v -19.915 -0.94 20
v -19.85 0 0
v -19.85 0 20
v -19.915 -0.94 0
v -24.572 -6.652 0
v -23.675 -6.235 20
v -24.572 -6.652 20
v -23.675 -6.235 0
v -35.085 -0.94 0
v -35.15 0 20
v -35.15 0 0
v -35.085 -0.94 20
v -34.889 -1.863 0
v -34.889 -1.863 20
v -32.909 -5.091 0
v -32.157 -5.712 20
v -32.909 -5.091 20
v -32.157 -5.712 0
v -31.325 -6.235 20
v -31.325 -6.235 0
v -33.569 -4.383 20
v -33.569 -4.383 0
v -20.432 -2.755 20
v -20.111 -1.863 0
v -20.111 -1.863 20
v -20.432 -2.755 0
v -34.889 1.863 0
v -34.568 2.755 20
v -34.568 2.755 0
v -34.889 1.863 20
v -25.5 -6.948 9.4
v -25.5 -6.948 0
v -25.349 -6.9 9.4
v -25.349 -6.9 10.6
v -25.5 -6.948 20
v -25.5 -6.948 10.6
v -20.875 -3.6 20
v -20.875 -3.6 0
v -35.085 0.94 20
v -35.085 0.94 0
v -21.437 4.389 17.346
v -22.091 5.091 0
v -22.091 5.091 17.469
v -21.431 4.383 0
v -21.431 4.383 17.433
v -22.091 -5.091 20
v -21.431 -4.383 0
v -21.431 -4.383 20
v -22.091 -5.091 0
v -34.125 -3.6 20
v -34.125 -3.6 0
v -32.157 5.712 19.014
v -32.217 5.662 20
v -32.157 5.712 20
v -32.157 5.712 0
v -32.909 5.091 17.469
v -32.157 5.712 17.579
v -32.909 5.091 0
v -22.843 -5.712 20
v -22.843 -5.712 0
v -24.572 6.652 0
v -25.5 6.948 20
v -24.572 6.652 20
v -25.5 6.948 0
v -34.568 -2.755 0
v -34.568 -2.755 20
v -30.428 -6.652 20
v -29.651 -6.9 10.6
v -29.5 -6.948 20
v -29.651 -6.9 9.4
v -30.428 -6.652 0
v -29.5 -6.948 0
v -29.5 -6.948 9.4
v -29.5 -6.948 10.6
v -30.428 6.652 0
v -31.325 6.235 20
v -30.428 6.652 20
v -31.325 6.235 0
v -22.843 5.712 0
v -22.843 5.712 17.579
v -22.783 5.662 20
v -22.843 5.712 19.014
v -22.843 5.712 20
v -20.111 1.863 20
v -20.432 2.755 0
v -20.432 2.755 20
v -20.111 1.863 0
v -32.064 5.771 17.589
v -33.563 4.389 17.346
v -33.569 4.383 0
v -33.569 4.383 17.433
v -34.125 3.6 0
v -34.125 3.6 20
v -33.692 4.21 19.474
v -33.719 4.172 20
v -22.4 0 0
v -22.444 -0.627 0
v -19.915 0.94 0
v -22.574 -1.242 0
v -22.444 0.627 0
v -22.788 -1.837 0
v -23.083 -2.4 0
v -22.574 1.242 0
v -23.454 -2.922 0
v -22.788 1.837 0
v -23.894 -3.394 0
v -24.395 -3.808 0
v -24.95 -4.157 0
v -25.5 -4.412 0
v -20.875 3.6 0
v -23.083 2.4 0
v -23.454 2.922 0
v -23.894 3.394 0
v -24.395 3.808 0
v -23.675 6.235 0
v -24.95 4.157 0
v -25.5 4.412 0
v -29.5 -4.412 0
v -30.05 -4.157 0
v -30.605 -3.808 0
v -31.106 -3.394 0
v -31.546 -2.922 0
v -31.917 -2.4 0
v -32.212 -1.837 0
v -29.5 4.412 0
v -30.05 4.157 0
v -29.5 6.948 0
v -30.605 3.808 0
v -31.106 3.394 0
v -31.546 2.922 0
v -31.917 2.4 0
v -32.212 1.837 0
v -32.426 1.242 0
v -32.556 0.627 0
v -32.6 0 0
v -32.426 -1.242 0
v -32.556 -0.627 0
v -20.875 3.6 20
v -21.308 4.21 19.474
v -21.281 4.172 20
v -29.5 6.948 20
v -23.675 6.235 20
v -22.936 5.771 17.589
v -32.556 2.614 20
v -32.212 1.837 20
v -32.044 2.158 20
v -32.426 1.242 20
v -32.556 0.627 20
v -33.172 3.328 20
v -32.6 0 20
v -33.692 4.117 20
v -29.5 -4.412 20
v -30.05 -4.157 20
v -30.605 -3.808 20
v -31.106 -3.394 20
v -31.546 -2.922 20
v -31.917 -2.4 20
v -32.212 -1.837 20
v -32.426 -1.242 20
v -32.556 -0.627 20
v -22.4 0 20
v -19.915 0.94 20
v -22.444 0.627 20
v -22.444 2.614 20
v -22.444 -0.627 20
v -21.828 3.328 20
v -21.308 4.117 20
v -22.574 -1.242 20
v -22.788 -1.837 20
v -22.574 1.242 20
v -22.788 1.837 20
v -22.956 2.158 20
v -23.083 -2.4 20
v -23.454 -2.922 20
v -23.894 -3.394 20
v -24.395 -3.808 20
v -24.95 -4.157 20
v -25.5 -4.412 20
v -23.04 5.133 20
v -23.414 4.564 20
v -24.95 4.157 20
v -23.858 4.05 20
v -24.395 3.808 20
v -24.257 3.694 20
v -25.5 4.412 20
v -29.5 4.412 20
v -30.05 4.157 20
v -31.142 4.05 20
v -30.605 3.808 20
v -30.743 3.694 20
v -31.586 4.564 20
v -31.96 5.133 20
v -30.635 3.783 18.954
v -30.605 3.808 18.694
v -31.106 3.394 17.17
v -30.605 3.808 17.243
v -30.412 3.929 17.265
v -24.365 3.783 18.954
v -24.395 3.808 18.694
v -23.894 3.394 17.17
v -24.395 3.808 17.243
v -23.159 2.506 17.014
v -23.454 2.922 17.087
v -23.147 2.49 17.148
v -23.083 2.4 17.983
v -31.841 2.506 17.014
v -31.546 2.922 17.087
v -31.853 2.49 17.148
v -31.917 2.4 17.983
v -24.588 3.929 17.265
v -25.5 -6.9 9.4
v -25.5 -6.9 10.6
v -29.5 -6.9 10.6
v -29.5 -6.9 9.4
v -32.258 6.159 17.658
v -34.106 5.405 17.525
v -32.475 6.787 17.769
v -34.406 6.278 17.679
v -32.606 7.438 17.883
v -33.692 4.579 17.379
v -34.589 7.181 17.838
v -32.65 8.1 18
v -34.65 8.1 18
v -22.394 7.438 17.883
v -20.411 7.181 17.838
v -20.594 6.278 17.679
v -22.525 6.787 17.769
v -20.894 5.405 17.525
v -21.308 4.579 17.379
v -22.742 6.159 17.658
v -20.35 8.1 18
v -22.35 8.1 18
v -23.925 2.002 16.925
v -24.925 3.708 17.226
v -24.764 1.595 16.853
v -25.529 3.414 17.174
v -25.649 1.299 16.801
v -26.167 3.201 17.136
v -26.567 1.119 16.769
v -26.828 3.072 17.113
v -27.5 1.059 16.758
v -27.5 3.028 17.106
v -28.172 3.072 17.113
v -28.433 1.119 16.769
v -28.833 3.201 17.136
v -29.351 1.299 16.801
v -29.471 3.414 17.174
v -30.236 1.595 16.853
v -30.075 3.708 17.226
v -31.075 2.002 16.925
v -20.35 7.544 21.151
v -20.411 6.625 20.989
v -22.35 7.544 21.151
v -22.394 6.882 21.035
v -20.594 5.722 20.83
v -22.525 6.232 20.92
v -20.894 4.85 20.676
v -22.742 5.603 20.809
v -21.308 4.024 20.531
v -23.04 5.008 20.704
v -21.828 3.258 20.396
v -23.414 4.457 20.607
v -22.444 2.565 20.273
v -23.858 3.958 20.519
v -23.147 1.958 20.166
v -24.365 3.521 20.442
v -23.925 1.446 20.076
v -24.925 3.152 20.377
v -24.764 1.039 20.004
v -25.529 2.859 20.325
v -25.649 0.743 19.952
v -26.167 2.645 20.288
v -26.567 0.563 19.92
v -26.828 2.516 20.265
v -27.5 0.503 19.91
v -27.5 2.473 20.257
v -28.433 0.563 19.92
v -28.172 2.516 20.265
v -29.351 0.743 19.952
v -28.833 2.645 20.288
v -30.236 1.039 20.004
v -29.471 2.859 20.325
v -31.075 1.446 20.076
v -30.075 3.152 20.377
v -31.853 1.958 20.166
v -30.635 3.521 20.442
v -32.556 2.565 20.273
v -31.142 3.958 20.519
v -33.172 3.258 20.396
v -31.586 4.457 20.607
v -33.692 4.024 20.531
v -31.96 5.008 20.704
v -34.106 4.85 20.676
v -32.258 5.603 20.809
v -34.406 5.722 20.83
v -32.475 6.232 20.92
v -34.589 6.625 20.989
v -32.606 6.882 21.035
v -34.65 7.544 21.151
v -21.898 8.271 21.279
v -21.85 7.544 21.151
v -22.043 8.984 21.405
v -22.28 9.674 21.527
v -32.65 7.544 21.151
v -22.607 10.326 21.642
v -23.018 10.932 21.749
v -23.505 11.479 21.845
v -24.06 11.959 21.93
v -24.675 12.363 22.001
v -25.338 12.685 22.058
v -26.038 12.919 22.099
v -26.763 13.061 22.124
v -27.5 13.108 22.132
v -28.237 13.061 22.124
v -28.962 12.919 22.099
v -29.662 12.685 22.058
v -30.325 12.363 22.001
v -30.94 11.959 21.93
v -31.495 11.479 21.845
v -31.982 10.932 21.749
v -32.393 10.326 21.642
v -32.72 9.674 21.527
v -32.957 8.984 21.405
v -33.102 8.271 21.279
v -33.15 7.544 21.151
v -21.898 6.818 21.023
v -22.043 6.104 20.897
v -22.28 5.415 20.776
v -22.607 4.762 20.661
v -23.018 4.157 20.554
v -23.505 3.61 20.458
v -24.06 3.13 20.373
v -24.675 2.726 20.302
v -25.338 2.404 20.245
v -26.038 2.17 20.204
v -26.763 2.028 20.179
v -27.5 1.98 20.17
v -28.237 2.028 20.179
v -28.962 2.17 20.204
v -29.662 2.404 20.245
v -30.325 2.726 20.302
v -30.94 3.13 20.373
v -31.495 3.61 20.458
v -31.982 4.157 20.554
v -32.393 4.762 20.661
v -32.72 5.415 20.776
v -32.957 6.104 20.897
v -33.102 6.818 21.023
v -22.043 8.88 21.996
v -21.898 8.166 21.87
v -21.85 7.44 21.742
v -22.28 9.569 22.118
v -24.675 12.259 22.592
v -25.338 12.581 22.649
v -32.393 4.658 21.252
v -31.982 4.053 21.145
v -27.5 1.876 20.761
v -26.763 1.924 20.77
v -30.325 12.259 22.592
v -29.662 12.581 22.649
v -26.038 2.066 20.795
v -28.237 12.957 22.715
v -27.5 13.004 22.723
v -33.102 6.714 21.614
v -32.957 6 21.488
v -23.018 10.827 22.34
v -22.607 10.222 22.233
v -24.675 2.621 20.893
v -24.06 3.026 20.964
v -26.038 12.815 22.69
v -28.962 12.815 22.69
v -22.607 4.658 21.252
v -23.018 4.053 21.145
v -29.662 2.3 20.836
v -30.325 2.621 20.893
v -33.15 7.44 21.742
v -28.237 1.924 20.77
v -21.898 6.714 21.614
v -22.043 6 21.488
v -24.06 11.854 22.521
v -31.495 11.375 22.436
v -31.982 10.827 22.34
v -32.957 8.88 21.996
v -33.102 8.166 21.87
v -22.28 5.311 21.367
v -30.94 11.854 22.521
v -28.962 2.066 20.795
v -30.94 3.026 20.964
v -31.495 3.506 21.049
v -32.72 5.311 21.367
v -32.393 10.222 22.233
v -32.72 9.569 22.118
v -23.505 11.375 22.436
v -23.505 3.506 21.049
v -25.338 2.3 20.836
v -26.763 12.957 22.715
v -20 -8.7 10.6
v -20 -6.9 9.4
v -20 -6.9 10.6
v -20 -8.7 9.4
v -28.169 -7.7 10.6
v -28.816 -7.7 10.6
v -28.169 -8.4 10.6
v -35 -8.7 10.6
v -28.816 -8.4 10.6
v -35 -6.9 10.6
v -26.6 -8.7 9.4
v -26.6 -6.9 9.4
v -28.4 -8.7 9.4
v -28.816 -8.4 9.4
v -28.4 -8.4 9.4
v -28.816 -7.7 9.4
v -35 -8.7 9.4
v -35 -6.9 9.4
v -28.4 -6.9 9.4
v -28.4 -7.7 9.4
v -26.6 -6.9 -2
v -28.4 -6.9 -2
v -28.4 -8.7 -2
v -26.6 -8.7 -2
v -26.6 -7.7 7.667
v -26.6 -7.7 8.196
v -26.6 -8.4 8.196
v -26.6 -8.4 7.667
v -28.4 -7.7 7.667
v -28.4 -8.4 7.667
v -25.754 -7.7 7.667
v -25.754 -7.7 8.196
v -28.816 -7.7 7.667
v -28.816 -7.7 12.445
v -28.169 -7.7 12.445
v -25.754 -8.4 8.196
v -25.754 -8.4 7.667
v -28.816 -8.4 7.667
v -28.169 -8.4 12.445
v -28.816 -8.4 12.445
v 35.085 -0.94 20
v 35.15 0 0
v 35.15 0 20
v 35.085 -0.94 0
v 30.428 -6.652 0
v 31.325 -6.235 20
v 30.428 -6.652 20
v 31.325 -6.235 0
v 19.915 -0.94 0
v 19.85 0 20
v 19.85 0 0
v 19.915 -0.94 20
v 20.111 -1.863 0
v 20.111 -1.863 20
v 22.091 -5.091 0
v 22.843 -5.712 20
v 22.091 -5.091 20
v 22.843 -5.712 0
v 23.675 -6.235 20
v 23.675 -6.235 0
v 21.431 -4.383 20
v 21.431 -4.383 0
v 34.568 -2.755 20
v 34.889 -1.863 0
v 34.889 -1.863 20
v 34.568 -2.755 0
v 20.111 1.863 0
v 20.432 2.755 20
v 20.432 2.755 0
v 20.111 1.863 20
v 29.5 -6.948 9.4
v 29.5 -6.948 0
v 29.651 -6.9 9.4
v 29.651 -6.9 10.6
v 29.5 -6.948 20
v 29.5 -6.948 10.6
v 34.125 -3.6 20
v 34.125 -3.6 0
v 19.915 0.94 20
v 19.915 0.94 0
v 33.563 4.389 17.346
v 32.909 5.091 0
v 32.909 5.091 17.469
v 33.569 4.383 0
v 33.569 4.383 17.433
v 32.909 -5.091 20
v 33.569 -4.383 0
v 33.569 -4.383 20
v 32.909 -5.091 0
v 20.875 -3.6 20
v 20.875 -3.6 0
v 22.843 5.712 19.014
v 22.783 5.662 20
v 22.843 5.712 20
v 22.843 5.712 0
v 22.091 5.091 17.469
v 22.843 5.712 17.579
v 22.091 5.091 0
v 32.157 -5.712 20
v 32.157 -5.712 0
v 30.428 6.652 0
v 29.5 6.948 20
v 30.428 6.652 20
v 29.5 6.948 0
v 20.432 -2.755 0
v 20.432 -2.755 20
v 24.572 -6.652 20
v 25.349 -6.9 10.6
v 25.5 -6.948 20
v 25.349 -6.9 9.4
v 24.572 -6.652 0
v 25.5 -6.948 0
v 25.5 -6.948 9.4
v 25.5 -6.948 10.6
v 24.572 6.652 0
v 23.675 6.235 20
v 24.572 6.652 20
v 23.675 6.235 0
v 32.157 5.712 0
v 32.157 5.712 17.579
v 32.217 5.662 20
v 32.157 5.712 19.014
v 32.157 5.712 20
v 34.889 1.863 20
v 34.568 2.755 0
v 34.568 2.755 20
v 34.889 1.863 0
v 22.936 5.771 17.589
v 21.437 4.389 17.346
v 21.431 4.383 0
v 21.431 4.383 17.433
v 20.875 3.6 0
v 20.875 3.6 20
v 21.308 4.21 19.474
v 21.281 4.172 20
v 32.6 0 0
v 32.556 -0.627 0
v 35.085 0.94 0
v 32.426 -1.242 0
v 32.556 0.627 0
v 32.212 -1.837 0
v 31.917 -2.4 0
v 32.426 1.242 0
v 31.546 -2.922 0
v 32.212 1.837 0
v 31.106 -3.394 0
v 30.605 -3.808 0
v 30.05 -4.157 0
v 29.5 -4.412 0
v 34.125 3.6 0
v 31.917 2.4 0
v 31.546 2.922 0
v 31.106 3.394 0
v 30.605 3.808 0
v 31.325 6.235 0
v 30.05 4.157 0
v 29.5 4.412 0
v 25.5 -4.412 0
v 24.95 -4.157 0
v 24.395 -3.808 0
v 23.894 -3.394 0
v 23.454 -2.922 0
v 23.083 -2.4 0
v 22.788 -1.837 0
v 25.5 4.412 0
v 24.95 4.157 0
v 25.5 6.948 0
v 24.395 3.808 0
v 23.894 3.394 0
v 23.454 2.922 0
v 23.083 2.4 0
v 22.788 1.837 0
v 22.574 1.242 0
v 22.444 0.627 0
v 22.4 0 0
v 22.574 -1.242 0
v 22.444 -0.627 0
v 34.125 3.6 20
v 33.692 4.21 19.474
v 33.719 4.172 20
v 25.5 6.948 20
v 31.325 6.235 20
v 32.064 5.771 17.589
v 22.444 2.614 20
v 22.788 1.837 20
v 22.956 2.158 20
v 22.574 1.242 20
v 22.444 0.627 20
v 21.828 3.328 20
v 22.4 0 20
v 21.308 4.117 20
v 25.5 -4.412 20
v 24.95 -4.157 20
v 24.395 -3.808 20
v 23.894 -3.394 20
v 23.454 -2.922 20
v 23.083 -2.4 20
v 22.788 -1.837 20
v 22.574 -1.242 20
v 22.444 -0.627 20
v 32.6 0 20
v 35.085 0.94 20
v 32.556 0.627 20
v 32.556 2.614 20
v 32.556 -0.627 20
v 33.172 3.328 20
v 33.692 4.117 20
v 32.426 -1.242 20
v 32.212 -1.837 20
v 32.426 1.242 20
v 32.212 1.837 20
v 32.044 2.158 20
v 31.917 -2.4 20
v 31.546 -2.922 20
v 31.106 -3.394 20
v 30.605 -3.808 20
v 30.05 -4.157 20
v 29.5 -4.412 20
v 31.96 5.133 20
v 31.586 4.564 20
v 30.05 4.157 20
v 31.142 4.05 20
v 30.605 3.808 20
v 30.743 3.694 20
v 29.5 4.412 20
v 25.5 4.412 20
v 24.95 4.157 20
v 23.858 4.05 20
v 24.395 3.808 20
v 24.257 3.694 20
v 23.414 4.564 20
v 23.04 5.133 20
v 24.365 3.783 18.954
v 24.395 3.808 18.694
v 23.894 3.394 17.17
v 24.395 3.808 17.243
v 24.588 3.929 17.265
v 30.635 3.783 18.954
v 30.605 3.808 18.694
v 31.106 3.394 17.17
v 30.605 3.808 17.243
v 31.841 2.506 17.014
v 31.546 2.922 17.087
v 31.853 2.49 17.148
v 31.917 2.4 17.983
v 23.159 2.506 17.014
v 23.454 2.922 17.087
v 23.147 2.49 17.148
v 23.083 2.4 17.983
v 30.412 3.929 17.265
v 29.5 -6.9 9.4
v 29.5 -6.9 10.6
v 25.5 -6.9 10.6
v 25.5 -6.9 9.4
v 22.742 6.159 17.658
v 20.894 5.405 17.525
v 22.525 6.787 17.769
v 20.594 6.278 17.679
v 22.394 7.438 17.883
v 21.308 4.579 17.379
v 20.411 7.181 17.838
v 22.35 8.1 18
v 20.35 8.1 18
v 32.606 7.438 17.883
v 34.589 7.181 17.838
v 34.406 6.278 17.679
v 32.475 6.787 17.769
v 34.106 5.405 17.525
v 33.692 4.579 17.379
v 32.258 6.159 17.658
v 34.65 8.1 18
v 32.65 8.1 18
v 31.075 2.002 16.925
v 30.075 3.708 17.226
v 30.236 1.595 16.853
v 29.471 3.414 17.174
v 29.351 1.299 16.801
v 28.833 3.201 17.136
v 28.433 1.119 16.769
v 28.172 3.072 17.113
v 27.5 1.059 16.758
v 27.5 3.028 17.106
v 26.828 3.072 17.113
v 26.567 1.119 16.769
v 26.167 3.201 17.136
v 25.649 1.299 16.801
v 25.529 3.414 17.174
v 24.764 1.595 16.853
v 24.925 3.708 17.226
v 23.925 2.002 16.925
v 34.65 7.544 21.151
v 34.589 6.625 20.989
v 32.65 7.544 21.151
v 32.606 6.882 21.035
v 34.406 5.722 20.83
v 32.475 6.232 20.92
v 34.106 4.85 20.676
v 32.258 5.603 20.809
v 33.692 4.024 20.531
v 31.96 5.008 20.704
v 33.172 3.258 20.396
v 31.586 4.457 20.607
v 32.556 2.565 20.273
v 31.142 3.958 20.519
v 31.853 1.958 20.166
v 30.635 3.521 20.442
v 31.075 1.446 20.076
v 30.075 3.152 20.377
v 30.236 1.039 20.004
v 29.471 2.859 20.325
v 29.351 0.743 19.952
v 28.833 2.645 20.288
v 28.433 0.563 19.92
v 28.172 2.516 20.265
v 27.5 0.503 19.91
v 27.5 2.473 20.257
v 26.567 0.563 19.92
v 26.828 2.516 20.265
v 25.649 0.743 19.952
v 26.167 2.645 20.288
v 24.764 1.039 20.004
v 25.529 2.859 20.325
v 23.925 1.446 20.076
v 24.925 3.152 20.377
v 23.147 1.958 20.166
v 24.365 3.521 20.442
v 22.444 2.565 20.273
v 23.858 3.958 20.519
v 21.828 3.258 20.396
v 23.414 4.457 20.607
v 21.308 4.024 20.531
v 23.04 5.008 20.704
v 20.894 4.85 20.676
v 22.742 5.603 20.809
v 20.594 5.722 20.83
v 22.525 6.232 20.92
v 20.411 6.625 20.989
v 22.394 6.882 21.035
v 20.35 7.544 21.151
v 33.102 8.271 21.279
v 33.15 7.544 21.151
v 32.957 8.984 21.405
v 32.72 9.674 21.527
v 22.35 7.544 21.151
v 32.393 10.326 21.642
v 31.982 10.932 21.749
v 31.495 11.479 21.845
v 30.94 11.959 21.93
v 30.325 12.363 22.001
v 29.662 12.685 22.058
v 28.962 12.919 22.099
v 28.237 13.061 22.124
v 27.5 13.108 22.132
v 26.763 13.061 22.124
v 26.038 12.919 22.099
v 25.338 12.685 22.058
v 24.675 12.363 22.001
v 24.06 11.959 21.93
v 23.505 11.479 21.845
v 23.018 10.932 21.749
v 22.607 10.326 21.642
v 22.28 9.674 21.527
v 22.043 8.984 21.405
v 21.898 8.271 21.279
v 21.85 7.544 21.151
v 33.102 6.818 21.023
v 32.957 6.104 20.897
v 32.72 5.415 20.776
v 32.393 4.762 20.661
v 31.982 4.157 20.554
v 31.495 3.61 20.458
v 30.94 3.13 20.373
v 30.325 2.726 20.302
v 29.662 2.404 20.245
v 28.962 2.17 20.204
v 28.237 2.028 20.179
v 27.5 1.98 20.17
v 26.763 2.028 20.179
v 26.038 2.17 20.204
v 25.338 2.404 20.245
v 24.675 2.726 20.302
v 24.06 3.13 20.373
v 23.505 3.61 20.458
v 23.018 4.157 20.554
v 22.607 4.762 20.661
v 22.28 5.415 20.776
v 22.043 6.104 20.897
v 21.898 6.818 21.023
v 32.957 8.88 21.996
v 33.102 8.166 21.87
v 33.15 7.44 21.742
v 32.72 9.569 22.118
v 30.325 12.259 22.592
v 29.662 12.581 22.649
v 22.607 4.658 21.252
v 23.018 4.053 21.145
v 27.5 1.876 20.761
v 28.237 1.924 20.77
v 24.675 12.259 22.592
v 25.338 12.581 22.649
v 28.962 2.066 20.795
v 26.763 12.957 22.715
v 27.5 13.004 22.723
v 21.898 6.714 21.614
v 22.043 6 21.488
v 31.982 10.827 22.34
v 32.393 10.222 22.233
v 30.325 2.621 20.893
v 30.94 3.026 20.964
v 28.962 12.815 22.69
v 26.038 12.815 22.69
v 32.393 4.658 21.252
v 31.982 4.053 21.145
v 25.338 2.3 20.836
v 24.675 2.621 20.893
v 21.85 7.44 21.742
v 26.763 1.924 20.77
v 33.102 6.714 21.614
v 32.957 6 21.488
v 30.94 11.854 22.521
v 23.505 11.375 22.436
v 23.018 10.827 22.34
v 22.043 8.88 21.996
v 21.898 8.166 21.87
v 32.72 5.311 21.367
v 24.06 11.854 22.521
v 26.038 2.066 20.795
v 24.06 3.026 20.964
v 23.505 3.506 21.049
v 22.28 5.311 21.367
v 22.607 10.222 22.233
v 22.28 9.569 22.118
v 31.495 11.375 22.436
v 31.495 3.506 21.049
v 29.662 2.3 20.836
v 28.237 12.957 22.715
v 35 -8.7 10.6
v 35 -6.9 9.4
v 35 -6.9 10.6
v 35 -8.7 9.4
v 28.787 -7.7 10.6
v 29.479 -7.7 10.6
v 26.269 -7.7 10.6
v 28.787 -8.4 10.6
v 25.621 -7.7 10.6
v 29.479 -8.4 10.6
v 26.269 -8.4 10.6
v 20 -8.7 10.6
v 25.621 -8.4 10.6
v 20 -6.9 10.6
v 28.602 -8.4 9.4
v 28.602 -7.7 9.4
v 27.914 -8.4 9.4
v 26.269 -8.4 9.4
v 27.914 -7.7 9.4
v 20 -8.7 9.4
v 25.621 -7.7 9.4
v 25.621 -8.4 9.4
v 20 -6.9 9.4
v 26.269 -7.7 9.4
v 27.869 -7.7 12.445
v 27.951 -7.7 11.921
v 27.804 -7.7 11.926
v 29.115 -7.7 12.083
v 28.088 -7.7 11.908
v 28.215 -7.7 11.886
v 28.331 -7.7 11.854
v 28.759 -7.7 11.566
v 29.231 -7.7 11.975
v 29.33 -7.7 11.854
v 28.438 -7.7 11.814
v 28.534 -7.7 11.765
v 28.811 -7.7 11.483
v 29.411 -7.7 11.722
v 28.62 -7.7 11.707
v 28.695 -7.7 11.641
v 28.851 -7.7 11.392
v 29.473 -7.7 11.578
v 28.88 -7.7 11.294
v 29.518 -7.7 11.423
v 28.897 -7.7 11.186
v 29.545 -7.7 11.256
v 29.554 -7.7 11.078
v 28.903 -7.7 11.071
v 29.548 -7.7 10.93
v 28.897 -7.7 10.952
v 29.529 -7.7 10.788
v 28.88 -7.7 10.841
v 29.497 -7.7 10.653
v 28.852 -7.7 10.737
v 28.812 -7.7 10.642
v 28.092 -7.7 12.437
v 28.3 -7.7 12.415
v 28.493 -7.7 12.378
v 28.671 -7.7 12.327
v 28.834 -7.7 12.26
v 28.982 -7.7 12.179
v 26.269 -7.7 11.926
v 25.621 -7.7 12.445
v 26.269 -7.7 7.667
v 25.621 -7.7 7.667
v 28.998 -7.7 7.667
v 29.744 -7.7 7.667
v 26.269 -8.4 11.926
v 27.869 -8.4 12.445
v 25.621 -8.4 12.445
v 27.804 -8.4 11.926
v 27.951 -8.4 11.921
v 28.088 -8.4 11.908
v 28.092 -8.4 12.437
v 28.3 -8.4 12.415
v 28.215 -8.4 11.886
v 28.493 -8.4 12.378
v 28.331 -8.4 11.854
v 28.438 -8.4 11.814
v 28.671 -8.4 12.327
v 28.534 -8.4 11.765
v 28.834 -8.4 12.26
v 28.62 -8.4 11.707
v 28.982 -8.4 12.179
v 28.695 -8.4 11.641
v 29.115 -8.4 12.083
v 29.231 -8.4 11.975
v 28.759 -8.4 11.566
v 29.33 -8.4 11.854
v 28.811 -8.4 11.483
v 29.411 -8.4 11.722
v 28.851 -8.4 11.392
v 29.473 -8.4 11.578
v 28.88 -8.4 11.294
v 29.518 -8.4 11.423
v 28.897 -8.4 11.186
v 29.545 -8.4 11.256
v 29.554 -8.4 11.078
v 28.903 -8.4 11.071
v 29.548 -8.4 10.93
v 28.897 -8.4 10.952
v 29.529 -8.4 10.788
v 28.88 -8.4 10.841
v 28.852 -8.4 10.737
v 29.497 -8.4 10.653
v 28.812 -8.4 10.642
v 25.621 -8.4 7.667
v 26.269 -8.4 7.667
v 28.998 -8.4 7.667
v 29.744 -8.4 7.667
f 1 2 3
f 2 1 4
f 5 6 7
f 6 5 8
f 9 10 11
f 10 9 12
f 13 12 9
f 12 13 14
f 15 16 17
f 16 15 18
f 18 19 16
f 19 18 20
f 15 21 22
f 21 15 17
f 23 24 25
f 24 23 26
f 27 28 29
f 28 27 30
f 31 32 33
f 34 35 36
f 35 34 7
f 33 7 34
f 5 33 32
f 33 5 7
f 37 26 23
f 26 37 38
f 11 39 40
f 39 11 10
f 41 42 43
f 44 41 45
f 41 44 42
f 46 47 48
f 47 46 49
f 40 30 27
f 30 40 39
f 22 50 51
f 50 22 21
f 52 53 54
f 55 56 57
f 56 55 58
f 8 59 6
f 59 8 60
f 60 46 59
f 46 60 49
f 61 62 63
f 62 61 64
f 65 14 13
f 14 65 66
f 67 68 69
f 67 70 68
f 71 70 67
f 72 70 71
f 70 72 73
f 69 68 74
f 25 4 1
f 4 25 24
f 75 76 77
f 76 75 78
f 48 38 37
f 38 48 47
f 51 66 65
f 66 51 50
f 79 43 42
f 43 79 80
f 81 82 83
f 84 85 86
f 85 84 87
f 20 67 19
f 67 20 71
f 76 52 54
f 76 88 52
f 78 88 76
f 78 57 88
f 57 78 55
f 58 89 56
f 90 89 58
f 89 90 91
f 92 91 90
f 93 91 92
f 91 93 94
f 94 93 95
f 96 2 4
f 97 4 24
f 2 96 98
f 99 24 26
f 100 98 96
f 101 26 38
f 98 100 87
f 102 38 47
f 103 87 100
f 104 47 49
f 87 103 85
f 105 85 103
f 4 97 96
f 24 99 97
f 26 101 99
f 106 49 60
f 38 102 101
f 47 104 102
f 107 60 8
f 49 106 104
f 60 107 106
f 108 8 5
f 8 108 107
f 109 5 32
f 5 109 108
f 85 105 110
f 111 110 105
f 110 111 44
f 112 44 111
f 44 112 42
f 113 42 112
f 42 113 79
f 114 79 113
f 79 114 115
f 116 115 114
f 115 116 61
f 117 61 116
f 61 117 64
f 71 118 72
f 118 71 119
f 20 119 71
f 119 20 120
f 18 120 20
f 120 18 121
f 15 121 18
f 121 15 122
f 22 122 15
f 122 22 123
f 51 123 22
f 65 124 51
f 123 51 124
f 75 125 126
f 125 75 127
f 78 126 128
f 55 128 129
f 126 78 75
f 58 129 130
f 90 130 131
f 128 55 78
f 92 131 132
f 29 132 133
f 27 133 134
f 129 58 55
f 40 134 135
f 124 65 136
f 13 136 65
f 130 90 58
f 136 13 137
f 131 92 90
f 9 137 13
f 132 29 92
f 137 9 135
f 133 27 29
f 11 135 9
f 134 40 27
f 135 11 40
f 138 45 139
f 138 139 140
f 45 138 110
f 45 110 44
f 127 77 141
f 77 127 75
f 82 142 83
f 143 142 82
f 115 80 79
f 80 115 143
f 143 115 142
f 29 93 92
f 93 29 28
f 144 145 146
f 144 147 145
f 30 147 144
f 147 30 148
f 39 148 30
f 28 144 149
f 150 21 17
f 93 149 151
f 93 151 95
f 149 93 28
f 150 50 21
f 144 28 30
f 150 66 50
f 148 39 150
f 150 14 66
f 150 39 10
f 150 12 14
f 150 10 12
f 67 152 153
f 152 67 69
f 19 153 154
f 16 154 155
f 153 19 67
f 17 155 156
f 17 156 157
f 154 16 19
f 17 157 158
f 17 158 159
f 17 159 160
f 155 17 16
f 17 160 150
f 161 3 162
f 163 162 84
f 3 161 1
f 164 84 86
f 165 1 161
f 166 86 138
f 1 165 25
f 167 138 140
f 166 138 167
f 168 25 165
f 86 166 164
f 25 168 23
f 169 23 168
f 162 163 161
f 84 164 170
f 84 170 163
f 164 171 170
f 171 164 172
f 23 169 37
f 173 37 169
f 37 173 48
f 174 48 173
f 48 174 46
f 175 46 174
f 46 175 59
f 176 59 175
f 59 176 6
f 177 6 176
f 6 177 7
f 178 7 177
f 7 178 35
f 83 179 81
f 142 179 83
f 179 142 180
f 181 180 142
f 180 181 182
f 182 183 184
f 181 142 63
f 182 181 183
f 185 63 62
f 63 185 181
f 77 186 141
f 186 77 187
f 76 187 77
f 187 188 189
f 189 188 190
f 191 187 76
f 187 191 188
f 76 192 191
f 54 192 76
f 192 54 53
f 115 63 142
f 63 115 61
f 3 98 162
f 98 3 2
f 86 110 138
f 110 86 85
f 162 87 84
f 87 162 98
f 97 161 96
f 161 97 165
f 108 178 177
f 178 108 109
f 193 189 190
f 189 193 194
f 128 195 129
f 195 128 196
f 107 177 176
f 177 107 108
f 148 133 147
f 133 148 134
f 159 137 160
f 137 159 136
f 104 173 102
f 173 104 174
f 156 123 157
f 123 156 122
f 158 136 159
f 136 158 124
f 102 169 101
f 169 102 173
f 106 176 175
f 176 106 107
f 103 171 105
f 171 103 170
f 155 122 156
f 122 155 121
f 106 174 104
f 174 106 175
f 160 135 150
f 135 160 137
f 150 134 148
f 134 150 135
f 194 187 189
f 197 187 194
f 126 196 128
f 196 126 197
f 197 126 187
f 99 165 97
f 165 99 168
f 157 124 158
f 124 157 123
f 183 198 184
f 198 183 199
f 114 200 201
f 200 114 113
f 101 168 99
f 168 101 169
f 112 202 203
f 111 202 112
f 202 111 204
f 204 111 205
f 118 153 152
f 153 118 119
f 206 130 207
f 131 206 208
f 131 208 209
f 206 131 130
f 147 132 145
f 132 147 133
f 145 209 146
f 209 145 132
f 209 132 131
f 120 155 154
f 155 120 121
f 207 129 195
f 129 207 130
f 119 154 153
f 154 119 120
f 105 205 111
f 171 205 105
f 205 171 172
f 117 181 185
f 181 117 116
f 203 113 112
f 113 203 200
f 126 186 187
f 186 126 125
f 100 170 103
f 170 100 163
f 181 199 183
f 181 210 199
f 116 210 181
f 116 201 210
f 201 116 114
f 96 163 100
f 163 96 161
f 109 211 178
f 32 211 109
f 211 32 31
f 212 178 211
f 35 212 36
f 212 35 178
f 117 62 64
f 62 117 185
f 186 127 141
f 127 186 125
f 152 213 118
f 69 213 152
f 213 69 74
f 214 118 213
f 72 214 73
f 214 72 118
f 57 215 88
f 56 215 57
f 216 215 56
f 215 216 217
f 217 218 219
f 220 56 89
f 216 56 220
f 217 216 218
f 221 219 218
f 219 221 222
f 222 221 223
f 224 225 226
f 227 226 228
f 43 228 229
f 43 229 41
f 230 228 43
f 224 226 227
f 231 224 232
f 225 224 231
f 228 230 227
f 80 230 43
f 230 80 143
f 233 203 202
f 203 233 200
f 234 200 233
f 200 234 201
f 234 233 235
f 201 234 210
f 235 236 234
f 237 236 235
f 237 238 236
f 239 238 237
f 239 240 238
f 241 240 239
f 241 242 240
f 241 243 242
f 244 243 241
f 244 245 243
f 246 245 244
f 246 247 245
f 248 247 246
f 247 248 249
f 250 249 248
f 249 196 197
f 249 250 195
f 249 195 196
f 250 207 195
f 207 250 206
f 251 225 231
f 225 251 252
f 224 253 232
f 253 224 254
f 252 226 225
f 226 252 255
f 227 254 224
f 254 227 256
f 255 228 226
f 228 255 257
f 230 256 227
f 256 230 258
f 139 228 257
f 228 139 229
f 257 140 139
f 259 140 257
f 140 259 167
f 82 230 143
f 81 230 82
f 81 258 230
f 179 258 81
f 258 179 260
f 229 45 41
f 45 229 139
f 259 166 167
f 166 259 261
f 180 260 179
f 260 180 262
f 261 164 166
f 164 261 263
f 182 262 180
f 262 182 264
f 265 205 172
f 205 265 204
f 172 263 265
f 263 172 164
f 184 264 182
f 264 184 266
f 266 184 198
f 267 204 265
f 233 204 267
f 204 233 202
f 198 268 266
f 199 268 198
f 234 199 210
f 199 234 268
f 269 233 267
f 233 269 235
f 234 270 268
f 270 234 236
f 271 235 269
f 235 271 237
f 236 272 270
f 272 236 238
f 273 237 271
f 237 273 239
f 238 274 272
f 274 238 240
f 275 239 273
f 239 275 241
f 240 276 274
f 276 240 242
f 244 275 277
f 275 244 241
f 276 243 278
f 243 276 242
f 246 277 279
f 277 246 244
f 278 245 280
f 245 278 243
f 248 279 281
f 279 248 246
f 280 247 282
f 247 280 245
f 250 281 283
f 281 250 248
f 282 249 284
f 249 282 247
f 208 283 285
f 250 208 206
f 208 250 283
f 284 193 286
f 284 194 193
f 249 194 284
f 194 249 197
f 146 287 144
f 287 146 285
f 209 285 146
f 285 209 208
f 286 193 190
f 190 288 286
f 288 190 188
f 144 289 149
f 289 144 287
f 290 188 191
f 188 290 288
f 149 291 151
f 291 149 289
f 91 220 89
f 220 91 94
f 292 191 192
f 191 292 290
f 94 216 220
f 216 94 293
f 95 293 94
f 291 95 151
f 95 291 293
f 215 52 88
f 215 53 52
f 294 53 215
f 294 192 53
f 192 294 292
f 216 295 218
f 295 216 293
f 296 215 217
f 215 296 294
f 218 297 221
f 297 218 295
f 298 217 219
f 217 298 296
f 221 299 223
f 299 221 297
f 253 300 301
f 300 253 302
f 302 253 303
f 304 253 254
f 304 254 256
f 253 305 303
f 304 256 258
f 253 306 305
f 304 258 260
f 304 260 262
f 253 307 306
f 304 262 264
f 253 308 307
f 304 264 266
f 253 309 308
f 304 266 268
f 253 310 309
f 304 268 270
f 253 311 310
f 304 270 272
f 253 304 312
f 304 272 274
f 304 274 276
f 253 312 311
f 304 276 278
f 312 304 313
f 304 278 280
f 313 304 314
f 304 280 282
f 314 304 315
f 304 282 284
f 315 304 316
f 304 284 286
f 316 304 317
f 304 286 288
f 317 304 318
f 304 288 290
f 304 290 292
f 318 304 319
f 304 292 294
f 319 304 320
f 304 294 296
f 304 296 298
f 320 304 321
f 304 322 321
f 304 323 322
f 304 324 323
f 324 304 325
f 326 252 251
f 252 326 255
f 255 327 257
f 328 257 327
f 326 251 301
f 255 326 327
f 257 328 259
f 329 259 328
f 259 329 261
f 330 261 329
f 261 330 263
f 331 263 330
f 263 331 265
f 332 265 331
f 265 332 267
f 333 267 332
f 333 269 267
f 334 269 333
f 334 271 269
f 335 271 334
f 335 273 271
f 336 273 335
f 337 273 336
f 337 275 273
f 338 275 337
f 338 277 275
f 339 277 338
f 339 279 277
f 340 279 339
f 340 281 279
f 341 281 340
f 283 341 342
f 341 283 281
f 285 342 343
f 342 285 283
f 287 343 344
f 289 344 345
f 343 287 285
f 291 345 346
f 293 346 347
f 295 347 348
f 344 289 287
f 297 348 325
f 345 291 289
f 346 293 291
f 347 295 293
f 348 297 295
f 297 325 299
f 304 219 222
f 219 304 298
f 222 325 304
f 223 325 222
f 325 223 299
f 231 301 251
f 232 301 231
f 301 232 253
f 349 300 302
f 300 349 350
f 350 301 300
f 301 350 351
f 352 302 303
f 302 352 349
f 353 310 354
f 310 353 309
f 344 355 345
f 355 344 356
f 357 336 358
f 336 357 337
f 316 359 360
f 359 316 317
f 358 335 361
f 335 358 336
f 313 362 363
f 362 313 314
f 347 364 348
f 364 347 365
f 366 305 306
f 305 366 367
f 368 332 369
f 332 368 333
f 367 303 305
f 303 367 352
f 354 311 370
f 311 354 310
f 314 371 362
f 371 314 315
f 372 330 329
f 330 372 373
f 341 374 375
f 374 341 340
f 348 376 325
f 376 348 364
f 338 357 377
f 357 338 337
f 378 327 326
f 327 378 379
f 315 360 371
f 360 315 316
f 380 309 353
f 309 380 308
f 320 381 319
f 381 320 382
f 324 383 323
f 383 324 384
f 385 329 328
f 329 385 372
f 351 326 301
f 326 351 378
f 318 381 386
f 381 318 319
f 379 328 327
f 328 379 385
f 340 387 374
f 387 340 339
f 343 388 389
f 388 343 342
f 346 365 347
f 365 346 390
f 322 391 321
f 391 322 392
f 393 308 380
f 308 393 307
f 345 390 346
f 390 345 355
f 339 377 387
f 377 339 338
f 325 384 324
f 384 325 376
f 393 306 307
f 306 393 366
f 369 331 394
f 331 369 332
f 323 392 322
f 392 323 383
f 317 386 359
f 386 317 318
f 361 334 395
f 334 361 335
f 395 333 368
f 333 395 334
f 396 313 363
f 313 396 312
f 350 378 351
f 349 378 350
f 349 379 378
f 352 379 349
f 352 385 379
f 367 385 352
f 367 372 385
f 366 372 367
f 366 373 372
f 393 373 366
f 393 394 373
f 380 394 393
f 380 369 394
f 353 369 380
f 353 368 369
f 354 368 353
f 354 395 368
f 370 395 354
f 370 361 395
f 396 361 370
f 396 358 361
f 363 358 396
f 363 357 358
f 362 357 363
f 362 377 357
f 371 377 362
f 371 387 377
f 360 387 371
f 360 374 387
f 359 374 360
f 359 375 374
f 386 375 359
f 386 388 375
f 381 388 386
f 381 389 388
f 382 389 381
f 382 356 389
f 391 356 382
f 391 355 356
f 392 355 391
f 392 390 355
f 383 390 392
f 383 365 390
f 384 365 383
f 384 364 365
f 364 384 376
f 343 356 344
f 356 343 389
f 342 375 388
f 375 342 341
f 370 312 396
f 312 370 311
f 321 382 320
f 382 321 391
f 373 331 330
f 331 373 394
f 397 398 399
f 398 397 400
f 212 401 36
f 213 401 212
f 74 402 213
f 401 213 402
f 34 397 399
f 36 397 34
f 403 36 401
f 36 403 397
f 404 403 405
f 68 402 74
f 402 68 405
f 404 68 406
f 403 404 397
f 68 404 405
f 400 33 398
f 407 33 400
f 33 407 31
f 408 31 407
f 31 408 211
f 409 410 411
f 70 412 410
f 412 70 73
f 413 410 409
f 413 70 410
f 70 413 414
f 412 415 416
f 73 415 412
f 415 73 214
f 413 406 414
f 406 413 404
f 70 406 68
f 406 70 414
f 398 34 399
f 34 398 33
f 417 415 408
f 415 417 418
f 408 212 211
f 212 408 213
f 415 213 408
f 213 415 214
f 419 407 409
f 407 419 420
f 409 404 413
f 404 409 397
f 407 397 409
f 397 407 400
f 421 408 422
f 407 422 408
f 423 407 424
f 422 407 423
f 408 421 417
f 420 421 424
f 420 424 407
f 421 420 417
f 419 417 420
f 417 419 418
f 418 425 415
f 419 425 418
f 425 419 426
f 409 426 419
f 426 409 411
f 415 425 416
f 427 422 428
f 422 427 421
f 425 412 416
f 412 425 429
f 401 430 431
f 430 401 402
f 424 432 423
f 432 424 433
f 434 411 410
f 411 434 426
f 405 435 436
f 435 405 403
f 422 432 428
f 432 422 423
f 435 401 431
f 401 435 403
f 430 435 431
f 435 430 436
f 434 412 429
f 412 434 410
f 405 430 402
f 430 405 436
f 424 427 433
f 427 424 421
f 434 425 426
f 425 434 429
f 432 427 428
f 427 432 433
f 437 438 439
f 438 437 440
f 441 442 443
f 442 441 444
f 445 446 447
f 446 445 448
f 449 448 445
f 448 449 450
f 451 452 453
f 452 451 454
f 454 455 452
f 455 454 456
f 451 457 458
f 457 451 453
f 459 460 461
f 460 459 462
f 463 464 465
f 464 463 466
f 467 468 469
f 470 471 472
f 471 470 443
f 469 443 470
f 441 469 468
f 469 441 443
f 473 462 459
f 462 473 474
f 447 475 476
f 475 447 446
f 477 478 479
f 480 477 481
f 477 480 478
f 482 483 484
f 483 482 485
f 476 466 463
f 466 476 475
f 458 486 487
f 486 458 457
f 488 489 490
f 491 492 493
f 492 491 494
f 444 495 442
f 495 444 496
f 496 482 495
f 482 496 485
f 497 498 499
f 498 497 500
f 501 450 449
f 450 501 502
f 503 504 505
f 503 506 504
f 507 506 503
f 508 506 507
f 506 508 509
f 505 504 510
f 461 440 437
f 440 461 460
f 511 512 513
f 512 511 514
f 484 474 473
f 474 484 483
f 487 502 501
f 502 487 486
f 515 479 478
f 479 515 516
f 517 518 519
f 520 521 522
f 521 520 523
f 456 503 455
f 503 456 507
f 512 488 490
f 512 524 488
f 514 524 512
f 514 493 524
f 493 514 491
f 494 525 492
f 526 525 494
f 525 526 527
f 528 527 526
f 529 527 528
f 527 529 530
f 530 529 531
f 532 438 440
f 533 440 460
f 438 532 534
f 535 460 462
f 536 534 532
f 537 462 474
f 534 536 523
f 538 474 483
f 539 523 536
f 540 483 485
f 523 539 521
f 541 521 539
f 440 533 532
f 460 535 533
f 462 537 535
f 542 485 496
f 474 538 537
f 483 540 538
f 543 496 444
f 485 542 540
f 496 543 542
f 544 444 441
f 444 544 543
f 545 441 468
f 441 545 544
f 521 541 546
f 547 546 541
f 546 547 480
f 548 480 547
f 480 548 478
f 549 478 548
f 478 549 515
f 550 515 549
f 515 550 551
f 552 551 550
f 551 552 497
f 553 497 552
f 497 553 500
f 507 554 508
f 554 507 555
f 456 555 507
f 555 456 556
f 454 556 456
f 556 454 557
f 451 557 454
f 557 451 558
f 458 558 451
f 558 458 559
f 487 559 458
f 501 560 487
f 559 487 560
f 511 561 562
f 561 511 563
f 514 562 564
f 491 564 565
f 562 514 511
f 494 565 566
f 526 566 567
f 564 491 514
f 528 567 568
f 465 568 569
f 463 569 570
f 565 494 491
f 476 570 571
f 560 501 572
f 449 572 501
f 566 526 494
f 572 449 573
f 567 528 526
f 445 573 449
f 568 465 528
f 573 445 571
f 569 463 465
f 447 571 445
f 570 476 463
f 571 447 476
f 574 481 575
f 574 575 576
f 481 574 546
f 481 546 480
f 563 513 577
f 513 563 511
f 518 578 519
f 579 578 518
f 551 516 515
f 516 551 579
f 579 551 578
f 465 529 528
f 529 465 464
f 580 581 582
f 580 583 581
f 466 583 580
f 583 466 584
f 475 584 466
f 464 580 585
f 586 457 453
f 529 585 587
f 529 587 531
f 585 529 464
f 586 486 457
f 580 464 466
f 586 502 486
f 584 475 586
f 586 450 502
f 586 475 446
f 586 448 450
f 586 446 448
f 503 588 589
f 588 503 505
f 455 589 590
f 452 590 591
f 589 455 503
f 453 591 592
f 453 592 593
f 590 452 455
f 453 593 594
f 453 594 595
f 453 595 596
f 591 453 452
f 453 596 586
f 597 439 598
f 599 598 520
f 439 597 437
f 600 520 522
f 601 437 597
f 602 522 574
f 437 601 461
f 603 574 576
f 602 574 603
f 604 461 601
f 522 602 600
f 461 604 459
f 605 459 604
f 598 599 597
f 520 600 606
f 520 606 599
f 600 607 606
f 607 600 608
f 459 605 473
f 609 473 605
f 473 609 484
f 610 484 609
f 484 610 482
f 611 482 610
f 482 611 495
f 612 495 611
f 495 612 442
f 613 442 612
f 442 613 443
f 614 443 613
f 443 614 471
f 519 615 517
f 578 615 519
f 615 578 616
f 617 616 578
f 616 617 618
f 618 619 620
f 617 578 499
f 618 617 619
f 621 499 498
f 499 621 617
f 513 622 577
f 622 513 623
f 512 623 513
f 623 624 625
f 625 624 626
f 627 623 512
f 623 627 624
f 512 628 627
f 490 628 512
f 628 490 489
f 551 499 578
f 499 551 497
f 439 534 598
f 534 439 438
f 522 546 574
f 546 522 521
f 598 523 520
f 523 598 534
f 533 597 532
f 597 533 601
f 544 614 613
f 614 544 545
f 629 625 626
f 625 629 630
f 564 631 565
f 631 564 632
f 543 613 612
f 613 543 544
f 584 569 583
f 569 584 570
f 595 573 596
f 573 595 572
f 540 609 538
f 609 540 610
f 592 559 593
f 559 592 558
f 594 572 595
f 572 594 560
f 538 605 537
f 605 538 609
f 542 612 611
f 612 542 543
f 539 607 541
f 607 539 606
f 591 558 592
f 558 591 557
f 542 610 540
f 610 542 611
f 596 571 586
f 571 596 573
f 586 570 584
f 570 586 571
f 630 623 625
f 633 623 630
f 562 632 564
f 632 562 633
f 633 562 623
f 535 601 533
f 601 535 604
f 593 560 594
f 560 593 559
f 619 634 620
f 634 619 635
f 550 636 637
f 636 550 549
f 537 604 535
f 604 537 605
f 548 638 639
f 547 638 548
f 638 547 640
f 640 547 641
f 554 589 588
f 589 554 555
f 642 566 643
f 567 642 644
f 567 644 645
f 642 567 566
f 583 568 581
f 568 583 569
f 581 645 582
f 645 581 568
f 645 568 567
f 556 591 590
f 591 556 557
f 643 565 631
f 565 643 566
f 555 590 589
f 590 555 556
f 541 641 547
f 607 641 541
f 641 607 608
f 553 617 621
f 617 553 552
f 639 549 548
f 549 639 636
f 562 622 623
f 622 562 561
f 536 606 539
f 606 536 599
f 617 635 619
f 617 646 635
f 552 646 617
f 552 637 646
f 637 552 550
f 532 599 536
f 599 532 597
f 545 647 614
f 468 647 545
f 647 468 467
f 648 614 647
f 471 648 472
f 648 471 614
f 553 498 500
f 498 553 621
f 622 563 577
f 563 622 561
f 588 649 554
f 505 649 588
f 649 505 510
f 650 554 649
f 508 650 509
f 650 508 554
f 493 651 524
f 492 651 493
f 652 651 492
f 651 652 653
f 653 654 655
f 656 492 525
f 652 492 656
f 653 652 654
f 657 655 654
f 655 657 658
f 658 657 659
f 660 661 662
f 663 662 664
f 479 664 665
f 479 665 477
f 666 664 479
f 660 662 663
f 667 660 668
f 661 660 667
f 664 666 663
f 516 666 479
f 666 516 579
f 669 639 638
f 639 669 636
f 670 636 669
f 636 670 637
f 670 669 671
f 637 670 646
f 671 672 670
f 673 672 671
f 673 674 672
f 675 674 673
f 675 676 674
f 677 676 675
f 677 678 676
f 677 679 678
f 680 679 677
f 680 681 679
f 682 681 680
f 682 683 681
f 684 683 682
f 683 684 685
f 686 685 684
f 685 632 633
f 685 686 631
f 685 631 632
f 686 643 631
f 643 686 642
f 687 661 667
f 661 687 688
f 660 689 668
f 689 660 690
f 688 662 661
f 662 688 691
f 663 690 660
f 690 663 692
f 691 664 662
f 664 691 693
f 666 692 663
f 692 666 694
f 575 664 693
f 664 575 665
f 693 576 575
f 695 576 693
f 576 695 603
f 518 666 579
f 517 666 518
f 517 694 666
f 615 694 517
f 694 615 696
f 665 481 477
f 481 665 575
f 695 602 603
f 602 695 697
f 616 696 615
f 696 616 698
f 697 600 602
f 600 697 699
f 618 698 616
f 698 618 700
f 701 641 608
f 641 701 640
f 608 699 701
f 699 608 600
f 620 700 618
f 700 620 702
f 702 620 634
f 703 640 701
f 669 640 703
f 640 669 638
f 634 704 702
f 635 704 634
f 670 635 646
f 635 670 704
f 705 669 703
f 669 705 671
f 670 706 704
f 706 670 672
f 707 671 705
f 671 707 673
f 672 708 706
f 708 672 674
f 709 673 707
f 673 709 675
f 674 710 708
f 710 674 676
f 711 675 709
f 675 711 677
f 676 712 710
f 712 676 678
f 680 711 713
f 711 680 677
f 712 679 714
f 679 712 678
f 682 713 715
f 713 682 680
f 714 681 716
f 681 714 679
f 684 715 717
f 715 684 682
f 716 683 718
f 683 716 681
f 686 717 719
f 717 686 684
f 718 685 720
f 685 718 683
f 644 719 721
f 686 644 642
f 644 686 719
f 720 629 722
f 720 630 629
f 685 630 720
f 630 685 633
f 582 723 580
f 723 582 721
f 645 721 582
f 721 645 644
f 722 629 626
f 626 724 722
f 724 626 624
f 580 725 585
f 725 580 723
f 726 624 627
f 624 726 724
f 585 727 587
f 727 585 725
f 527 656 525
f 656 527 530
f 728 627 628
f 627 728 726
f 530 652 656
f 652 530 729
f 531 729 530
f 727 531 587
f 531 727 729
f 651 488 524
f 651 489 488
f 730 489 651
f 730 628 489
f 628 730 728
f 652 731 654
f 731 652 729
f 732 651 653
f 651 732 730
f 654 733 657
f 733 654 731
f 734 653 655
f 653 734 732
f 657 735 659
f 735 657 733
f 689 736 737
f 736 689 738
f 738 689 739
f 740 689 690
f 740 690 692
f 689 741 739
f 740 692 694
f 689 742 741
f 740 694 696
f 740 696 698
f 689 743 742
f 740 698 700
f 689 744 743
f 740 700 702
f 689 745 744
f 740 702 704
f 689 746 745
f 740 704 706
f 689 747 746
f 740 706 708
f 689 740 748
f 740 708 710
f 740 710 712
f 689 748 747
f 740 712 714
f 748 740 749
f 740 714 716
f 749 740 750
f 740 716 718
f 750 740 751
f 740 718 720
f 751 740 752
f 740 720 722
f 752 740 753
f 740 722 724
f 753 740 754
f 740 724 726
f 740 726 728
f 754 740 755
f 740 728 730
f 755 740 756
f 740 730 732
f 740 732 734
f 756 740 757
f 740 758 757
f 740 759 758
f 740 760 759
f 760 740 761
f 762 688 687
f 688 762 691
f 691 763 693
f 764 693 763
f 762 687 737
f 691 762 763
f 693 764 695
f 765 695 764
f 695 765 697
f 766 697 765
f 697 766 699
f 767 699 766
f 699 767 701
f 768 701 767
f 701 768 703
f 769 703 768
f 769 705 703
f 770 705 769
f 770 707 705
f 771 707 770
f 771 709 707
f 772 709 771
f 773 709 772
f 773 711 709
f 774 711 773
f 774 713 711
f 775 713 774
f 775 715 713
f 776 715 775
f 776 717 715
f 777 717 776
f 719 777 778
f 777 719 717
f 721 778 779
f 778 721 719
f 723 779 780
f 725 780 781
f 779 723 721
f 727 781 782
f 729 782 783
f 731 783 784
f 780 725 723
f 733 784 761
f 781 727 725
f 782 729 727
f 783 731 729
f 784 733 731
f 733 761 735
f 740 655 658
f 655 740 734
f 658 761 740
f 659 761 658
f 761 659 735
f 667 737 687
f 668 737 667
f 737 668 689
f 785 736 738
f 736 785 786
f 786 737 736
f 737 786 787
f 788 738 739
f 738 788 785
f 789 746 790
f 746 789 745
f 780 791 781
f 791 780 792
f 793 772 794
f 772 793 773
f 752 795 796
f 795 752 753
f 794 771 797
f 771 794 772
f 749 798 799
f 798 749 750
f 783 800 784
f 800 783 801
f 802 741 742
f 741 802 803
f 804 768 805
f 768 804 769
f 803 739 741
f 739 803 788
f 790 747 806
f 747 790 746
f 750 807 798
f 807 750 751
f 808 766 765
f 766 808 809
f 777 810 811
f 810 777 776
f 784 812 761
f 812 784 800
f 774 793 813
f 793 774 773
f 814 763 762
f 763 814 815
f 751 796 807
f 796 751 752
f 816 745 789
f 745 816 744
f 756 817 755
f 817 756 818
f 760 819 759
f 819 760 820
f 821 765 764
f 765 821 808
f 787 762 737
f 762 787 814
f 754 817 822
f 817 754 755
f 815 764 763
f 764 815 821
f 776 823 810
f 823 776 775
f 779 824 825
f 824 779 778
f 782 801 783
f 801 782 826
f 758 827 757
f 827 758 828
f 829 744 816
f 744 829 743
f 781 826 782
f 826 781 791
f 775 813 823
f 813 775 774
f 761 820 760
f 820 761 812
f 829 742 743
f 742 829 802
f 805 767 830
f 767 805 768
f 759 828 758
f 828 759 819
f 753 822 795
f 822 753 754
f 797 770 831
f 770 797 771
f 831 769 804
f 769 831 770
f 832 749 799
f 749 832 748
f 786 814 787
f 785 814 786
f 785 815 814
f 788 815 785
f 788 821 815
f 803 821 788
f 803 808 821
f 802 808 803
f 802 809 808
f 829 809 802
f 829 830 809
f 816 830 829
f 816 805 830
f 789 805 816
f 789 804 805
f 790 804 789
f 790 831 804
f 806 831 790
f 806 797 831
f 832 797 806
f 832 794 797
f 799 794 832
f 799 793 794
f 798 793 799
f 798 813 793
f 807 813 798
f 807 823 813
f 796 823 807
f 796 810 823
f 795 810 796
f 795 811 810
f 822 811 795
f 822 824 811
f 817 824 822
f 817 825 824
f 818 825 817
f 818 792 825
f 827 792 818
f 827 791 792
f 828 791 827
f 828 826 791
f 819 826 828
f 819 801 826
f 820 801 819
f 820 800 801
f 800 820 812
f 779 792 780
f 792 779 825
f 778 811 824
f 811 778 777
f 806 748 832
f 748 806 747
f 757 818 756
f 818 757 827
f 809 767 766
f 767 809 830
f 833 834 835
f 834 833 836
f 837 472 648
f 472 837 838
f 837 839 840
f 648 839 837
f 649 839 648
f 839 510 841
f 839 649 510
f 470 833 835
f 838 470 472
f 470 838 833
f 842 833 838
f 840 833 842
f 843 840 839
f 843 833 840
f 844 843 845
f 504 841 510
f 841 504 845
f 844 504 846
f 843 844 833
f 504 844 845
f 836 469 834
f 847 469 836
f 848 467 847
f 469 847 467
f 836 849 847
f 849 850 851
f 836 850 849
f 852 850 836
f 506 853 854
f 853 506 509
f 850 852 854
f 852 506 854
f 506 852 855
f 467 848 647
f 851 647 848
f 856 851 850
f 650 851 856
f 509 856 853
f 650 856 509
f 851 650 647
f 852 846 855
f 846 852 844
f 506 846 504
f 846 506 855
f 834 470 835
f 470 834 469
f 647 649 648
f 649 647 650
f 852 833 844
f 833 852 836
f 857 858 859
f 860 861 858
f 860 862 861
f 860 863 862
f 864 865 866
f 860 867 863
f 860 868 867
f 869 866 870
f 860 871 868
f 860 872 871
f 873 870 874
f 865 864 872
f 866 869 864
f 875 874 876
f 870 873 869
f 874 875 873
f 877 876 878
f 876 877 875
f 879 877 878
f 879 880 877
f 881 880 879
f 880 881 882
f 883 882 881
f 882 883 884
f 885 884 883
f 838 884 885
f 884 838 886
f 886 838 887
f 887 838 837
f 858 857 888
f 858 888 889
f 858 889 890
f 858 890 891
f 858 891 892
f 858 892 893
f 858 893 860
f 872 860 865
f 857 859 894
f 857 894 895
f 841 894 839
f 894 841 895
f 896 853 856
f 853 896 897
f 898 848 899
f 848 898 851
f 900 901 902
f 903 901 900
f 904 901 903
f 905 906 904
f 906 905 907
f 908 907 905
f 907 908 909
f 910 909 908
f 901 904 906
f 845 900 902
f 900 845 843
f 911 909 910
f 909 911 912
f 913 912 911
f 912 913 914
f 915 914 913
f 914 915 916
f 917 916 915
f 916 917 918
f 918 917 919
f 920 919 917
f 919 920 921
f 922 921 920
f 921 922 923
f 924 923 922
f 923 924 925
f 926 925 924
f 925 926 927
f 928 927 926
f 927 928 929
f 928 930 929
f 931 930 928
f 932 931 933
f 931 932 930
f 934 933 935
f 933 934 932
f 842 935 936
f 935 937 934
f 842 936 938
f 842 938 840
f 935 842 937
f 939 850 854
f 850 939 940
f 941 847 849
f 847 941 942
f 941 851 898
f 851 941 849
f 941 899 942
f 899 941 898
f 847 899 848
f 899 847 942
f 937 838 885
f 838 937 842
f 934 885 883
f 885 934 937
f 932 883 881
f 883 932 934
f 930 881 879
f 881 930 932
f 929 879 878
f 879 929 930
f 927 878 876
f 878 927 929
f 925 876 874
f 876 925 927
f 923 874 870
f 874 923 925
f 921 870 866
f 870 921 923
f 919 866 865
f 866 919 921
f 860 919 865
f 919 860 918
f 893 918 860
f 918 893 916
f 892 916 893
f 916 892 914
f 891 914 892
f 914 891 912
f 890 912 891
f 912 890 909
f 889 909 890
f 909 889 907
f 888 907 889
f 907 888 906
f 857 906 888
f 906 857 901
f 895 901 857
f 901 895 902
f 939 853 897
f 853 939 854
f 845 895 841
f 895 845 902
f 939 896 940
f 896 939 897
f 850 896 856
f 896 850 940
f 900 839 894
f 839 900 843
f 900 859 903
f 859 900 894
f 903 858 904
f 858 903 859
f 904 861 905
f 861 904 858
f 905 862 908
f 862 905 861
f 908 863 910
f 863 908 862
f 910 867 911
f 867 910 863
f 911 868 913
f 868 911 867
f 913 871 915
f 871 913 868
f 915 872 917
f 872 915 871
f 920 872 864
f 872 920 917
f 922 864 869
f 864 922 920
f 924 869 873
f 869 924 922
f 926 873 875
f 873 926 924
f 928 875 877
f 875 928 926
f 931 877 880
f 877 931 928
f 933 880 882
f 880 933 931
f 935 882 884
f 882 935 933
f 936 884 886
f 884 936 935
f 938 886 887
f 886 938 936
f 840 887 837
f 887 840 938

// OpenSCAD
//
// MSKR Mastoid Saddle – Combined L + R
// OpenSCAD 2021‑compatible (no minkowski, no heavy fillets)
//

$fn = 48;

// ---------- Parameters ----------
saddle_len      = 20;
clip_inner_x    = 10.2;
clip_inner_y    = 9.6;
clip_wall       = 2.4;
clip_opening    = 4.0;

motor_pocket_d  = 10.3;
motor_pocket_h  = 3.2;

forward_offset  = 8.0;
preload         = 0.9;
tilt_deg        = 10;

wire_w          = 1.8;
wire_h          = 1.2;

letter_h        = 0.7;
letter_size     = 5;

pair_gap        = 15;


// ---------- Oval Clip (simple, 2021‑safe) ----------
module oval_clip(len) {
    difference() {
        // outer
        linear_extrude(len)
            scale([clip_inner_x/clip_inner_y, 1])
                circle(d = clip_inner_y + 2*clip_wall);

        // inner
        translate([0,0,-0.5])
        linear_extrude(len+1)
            scale([clip_inner_x/clip_inner_y, 1])
                circle(d = clip_inner_y);

        // opening
        translate([-clip_opening/2, -clip_inner_y, -0.5])
            cube([clip_opening, 2*clip_inner_y+1, len+1], center=false);
    }
}


// ---------- Wire Grooves ----------
module wire_groove(len) {
    translate([-len/2, -wire_w/2, -wire_h/2])
        cube([len, wire_w, wire_h], center=false);
}

module downward_groove(len_drop) {
    translate([-wire_w/2, -wire_w/2, -len_drop])
        cube([wire_w, wire_w, len_drop], center=false);
}


// ---------- Motor Cradle (simple, 2021‑safe) ----------
module motor_cradle_simple() {
    difference() {
        // ring
        rotate_extrude(angle=360)
            translate([motor_pocket_d/2, 0, 0])
                square([2, motor_pocket_h], center=false);

        // open inner side
        translate([-motor_pocket_d, 0, -1])
            cube([2*motor_pocket_d, motor_pocket_d, motor_pocket_h+2], center=false);
    }

    // simple retention lip
    translate([0,0,motor_pocket_h])
        cylinder(d=motor_pocket_d+1.0, h=0.6);
}


// ---------- Saddle ----------
module saddle(side="L") {

    // Clip body
    oval_clip(saddle_len);

    // Motor cradle
    translate([0,
               (clip_inner_y/2 + clip_wall) + preload,
               saddle_len/2 + forward_offset])
    rotate([tilt_deg, 0, 0])
        motor_cradle_simple();

    // Rear wire groove (~15mm)
    translate([0, -(clip_inner_y/2 + clip_wall + wire_h/2), saddle_len/2])
        wire_groove(15);

    // Left downward groove
    if (side == "L")
        translate([0, -(clip_inner_y/2 + clip_wall + wire_h/2), saddle_len/2])
            downward_groove(12);

    // L/R marking (text() works in 2021)
    translate([0, -(clip_inner_y/2 + clip_wall + 0.5), saddle_len/2])
    rotate([90,0,0])
    linear_extrude(letter_h)
        text(side, size=letter_size, halign="center", valign="center");
}


// ---------- Combined L + R ----------
translate([-(saddle_len + pair_gap/2), 0, 0])
    saddle("L");

translate([ (saddle_len + pair_gap/2), 0, 0])
    saddle("R");
